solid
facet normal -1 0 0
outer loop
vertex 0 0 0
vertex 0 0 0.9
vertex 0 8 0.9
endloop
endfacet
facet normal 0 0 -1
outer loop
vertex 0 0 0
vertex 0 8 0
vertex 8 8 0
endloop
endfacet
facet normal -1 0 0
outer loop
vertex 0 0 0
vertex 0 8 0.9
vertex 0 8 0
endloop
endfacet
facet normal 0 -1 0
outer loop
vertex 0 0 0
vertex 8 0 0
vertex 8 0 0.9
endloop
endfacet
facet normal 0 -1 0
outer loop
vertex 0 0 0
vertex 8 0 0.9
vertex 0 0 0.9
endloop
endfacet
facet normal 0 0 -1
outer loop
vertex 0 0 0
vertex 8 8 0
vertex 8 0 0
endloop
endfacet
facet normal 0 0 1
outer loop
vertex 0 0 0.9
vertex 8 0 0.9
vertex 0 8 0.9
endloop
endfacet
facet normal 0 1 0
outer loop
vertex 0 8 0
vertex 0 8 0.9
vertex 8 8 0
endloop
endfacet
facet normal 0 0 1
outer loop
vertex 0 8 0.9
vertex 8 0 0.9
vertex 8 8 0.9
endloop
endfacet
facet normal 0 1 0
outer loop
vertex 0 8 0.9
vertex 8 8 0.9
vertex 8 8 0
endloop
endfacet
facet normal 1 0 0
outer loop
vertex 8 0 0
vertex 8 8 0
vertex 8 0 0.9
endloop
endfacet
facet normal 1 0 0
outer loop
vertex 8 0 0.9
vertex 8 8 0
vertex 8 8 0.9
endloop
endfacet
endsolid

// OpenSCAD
/* Warning, this is a very basic generator with a lot of approximation 
input data : [VQFN, KCX, 8x8x0.9mm, 64, , C, C04-00479C]
generated by com.zoubworld.electronics.cad.model3d.Basic
Date : Sun Feb 15 10:50:48 CET 2026
*/

//body
color("black")
translate([0,0,0])
cube([8.0,8.0,0.9], center=false);
